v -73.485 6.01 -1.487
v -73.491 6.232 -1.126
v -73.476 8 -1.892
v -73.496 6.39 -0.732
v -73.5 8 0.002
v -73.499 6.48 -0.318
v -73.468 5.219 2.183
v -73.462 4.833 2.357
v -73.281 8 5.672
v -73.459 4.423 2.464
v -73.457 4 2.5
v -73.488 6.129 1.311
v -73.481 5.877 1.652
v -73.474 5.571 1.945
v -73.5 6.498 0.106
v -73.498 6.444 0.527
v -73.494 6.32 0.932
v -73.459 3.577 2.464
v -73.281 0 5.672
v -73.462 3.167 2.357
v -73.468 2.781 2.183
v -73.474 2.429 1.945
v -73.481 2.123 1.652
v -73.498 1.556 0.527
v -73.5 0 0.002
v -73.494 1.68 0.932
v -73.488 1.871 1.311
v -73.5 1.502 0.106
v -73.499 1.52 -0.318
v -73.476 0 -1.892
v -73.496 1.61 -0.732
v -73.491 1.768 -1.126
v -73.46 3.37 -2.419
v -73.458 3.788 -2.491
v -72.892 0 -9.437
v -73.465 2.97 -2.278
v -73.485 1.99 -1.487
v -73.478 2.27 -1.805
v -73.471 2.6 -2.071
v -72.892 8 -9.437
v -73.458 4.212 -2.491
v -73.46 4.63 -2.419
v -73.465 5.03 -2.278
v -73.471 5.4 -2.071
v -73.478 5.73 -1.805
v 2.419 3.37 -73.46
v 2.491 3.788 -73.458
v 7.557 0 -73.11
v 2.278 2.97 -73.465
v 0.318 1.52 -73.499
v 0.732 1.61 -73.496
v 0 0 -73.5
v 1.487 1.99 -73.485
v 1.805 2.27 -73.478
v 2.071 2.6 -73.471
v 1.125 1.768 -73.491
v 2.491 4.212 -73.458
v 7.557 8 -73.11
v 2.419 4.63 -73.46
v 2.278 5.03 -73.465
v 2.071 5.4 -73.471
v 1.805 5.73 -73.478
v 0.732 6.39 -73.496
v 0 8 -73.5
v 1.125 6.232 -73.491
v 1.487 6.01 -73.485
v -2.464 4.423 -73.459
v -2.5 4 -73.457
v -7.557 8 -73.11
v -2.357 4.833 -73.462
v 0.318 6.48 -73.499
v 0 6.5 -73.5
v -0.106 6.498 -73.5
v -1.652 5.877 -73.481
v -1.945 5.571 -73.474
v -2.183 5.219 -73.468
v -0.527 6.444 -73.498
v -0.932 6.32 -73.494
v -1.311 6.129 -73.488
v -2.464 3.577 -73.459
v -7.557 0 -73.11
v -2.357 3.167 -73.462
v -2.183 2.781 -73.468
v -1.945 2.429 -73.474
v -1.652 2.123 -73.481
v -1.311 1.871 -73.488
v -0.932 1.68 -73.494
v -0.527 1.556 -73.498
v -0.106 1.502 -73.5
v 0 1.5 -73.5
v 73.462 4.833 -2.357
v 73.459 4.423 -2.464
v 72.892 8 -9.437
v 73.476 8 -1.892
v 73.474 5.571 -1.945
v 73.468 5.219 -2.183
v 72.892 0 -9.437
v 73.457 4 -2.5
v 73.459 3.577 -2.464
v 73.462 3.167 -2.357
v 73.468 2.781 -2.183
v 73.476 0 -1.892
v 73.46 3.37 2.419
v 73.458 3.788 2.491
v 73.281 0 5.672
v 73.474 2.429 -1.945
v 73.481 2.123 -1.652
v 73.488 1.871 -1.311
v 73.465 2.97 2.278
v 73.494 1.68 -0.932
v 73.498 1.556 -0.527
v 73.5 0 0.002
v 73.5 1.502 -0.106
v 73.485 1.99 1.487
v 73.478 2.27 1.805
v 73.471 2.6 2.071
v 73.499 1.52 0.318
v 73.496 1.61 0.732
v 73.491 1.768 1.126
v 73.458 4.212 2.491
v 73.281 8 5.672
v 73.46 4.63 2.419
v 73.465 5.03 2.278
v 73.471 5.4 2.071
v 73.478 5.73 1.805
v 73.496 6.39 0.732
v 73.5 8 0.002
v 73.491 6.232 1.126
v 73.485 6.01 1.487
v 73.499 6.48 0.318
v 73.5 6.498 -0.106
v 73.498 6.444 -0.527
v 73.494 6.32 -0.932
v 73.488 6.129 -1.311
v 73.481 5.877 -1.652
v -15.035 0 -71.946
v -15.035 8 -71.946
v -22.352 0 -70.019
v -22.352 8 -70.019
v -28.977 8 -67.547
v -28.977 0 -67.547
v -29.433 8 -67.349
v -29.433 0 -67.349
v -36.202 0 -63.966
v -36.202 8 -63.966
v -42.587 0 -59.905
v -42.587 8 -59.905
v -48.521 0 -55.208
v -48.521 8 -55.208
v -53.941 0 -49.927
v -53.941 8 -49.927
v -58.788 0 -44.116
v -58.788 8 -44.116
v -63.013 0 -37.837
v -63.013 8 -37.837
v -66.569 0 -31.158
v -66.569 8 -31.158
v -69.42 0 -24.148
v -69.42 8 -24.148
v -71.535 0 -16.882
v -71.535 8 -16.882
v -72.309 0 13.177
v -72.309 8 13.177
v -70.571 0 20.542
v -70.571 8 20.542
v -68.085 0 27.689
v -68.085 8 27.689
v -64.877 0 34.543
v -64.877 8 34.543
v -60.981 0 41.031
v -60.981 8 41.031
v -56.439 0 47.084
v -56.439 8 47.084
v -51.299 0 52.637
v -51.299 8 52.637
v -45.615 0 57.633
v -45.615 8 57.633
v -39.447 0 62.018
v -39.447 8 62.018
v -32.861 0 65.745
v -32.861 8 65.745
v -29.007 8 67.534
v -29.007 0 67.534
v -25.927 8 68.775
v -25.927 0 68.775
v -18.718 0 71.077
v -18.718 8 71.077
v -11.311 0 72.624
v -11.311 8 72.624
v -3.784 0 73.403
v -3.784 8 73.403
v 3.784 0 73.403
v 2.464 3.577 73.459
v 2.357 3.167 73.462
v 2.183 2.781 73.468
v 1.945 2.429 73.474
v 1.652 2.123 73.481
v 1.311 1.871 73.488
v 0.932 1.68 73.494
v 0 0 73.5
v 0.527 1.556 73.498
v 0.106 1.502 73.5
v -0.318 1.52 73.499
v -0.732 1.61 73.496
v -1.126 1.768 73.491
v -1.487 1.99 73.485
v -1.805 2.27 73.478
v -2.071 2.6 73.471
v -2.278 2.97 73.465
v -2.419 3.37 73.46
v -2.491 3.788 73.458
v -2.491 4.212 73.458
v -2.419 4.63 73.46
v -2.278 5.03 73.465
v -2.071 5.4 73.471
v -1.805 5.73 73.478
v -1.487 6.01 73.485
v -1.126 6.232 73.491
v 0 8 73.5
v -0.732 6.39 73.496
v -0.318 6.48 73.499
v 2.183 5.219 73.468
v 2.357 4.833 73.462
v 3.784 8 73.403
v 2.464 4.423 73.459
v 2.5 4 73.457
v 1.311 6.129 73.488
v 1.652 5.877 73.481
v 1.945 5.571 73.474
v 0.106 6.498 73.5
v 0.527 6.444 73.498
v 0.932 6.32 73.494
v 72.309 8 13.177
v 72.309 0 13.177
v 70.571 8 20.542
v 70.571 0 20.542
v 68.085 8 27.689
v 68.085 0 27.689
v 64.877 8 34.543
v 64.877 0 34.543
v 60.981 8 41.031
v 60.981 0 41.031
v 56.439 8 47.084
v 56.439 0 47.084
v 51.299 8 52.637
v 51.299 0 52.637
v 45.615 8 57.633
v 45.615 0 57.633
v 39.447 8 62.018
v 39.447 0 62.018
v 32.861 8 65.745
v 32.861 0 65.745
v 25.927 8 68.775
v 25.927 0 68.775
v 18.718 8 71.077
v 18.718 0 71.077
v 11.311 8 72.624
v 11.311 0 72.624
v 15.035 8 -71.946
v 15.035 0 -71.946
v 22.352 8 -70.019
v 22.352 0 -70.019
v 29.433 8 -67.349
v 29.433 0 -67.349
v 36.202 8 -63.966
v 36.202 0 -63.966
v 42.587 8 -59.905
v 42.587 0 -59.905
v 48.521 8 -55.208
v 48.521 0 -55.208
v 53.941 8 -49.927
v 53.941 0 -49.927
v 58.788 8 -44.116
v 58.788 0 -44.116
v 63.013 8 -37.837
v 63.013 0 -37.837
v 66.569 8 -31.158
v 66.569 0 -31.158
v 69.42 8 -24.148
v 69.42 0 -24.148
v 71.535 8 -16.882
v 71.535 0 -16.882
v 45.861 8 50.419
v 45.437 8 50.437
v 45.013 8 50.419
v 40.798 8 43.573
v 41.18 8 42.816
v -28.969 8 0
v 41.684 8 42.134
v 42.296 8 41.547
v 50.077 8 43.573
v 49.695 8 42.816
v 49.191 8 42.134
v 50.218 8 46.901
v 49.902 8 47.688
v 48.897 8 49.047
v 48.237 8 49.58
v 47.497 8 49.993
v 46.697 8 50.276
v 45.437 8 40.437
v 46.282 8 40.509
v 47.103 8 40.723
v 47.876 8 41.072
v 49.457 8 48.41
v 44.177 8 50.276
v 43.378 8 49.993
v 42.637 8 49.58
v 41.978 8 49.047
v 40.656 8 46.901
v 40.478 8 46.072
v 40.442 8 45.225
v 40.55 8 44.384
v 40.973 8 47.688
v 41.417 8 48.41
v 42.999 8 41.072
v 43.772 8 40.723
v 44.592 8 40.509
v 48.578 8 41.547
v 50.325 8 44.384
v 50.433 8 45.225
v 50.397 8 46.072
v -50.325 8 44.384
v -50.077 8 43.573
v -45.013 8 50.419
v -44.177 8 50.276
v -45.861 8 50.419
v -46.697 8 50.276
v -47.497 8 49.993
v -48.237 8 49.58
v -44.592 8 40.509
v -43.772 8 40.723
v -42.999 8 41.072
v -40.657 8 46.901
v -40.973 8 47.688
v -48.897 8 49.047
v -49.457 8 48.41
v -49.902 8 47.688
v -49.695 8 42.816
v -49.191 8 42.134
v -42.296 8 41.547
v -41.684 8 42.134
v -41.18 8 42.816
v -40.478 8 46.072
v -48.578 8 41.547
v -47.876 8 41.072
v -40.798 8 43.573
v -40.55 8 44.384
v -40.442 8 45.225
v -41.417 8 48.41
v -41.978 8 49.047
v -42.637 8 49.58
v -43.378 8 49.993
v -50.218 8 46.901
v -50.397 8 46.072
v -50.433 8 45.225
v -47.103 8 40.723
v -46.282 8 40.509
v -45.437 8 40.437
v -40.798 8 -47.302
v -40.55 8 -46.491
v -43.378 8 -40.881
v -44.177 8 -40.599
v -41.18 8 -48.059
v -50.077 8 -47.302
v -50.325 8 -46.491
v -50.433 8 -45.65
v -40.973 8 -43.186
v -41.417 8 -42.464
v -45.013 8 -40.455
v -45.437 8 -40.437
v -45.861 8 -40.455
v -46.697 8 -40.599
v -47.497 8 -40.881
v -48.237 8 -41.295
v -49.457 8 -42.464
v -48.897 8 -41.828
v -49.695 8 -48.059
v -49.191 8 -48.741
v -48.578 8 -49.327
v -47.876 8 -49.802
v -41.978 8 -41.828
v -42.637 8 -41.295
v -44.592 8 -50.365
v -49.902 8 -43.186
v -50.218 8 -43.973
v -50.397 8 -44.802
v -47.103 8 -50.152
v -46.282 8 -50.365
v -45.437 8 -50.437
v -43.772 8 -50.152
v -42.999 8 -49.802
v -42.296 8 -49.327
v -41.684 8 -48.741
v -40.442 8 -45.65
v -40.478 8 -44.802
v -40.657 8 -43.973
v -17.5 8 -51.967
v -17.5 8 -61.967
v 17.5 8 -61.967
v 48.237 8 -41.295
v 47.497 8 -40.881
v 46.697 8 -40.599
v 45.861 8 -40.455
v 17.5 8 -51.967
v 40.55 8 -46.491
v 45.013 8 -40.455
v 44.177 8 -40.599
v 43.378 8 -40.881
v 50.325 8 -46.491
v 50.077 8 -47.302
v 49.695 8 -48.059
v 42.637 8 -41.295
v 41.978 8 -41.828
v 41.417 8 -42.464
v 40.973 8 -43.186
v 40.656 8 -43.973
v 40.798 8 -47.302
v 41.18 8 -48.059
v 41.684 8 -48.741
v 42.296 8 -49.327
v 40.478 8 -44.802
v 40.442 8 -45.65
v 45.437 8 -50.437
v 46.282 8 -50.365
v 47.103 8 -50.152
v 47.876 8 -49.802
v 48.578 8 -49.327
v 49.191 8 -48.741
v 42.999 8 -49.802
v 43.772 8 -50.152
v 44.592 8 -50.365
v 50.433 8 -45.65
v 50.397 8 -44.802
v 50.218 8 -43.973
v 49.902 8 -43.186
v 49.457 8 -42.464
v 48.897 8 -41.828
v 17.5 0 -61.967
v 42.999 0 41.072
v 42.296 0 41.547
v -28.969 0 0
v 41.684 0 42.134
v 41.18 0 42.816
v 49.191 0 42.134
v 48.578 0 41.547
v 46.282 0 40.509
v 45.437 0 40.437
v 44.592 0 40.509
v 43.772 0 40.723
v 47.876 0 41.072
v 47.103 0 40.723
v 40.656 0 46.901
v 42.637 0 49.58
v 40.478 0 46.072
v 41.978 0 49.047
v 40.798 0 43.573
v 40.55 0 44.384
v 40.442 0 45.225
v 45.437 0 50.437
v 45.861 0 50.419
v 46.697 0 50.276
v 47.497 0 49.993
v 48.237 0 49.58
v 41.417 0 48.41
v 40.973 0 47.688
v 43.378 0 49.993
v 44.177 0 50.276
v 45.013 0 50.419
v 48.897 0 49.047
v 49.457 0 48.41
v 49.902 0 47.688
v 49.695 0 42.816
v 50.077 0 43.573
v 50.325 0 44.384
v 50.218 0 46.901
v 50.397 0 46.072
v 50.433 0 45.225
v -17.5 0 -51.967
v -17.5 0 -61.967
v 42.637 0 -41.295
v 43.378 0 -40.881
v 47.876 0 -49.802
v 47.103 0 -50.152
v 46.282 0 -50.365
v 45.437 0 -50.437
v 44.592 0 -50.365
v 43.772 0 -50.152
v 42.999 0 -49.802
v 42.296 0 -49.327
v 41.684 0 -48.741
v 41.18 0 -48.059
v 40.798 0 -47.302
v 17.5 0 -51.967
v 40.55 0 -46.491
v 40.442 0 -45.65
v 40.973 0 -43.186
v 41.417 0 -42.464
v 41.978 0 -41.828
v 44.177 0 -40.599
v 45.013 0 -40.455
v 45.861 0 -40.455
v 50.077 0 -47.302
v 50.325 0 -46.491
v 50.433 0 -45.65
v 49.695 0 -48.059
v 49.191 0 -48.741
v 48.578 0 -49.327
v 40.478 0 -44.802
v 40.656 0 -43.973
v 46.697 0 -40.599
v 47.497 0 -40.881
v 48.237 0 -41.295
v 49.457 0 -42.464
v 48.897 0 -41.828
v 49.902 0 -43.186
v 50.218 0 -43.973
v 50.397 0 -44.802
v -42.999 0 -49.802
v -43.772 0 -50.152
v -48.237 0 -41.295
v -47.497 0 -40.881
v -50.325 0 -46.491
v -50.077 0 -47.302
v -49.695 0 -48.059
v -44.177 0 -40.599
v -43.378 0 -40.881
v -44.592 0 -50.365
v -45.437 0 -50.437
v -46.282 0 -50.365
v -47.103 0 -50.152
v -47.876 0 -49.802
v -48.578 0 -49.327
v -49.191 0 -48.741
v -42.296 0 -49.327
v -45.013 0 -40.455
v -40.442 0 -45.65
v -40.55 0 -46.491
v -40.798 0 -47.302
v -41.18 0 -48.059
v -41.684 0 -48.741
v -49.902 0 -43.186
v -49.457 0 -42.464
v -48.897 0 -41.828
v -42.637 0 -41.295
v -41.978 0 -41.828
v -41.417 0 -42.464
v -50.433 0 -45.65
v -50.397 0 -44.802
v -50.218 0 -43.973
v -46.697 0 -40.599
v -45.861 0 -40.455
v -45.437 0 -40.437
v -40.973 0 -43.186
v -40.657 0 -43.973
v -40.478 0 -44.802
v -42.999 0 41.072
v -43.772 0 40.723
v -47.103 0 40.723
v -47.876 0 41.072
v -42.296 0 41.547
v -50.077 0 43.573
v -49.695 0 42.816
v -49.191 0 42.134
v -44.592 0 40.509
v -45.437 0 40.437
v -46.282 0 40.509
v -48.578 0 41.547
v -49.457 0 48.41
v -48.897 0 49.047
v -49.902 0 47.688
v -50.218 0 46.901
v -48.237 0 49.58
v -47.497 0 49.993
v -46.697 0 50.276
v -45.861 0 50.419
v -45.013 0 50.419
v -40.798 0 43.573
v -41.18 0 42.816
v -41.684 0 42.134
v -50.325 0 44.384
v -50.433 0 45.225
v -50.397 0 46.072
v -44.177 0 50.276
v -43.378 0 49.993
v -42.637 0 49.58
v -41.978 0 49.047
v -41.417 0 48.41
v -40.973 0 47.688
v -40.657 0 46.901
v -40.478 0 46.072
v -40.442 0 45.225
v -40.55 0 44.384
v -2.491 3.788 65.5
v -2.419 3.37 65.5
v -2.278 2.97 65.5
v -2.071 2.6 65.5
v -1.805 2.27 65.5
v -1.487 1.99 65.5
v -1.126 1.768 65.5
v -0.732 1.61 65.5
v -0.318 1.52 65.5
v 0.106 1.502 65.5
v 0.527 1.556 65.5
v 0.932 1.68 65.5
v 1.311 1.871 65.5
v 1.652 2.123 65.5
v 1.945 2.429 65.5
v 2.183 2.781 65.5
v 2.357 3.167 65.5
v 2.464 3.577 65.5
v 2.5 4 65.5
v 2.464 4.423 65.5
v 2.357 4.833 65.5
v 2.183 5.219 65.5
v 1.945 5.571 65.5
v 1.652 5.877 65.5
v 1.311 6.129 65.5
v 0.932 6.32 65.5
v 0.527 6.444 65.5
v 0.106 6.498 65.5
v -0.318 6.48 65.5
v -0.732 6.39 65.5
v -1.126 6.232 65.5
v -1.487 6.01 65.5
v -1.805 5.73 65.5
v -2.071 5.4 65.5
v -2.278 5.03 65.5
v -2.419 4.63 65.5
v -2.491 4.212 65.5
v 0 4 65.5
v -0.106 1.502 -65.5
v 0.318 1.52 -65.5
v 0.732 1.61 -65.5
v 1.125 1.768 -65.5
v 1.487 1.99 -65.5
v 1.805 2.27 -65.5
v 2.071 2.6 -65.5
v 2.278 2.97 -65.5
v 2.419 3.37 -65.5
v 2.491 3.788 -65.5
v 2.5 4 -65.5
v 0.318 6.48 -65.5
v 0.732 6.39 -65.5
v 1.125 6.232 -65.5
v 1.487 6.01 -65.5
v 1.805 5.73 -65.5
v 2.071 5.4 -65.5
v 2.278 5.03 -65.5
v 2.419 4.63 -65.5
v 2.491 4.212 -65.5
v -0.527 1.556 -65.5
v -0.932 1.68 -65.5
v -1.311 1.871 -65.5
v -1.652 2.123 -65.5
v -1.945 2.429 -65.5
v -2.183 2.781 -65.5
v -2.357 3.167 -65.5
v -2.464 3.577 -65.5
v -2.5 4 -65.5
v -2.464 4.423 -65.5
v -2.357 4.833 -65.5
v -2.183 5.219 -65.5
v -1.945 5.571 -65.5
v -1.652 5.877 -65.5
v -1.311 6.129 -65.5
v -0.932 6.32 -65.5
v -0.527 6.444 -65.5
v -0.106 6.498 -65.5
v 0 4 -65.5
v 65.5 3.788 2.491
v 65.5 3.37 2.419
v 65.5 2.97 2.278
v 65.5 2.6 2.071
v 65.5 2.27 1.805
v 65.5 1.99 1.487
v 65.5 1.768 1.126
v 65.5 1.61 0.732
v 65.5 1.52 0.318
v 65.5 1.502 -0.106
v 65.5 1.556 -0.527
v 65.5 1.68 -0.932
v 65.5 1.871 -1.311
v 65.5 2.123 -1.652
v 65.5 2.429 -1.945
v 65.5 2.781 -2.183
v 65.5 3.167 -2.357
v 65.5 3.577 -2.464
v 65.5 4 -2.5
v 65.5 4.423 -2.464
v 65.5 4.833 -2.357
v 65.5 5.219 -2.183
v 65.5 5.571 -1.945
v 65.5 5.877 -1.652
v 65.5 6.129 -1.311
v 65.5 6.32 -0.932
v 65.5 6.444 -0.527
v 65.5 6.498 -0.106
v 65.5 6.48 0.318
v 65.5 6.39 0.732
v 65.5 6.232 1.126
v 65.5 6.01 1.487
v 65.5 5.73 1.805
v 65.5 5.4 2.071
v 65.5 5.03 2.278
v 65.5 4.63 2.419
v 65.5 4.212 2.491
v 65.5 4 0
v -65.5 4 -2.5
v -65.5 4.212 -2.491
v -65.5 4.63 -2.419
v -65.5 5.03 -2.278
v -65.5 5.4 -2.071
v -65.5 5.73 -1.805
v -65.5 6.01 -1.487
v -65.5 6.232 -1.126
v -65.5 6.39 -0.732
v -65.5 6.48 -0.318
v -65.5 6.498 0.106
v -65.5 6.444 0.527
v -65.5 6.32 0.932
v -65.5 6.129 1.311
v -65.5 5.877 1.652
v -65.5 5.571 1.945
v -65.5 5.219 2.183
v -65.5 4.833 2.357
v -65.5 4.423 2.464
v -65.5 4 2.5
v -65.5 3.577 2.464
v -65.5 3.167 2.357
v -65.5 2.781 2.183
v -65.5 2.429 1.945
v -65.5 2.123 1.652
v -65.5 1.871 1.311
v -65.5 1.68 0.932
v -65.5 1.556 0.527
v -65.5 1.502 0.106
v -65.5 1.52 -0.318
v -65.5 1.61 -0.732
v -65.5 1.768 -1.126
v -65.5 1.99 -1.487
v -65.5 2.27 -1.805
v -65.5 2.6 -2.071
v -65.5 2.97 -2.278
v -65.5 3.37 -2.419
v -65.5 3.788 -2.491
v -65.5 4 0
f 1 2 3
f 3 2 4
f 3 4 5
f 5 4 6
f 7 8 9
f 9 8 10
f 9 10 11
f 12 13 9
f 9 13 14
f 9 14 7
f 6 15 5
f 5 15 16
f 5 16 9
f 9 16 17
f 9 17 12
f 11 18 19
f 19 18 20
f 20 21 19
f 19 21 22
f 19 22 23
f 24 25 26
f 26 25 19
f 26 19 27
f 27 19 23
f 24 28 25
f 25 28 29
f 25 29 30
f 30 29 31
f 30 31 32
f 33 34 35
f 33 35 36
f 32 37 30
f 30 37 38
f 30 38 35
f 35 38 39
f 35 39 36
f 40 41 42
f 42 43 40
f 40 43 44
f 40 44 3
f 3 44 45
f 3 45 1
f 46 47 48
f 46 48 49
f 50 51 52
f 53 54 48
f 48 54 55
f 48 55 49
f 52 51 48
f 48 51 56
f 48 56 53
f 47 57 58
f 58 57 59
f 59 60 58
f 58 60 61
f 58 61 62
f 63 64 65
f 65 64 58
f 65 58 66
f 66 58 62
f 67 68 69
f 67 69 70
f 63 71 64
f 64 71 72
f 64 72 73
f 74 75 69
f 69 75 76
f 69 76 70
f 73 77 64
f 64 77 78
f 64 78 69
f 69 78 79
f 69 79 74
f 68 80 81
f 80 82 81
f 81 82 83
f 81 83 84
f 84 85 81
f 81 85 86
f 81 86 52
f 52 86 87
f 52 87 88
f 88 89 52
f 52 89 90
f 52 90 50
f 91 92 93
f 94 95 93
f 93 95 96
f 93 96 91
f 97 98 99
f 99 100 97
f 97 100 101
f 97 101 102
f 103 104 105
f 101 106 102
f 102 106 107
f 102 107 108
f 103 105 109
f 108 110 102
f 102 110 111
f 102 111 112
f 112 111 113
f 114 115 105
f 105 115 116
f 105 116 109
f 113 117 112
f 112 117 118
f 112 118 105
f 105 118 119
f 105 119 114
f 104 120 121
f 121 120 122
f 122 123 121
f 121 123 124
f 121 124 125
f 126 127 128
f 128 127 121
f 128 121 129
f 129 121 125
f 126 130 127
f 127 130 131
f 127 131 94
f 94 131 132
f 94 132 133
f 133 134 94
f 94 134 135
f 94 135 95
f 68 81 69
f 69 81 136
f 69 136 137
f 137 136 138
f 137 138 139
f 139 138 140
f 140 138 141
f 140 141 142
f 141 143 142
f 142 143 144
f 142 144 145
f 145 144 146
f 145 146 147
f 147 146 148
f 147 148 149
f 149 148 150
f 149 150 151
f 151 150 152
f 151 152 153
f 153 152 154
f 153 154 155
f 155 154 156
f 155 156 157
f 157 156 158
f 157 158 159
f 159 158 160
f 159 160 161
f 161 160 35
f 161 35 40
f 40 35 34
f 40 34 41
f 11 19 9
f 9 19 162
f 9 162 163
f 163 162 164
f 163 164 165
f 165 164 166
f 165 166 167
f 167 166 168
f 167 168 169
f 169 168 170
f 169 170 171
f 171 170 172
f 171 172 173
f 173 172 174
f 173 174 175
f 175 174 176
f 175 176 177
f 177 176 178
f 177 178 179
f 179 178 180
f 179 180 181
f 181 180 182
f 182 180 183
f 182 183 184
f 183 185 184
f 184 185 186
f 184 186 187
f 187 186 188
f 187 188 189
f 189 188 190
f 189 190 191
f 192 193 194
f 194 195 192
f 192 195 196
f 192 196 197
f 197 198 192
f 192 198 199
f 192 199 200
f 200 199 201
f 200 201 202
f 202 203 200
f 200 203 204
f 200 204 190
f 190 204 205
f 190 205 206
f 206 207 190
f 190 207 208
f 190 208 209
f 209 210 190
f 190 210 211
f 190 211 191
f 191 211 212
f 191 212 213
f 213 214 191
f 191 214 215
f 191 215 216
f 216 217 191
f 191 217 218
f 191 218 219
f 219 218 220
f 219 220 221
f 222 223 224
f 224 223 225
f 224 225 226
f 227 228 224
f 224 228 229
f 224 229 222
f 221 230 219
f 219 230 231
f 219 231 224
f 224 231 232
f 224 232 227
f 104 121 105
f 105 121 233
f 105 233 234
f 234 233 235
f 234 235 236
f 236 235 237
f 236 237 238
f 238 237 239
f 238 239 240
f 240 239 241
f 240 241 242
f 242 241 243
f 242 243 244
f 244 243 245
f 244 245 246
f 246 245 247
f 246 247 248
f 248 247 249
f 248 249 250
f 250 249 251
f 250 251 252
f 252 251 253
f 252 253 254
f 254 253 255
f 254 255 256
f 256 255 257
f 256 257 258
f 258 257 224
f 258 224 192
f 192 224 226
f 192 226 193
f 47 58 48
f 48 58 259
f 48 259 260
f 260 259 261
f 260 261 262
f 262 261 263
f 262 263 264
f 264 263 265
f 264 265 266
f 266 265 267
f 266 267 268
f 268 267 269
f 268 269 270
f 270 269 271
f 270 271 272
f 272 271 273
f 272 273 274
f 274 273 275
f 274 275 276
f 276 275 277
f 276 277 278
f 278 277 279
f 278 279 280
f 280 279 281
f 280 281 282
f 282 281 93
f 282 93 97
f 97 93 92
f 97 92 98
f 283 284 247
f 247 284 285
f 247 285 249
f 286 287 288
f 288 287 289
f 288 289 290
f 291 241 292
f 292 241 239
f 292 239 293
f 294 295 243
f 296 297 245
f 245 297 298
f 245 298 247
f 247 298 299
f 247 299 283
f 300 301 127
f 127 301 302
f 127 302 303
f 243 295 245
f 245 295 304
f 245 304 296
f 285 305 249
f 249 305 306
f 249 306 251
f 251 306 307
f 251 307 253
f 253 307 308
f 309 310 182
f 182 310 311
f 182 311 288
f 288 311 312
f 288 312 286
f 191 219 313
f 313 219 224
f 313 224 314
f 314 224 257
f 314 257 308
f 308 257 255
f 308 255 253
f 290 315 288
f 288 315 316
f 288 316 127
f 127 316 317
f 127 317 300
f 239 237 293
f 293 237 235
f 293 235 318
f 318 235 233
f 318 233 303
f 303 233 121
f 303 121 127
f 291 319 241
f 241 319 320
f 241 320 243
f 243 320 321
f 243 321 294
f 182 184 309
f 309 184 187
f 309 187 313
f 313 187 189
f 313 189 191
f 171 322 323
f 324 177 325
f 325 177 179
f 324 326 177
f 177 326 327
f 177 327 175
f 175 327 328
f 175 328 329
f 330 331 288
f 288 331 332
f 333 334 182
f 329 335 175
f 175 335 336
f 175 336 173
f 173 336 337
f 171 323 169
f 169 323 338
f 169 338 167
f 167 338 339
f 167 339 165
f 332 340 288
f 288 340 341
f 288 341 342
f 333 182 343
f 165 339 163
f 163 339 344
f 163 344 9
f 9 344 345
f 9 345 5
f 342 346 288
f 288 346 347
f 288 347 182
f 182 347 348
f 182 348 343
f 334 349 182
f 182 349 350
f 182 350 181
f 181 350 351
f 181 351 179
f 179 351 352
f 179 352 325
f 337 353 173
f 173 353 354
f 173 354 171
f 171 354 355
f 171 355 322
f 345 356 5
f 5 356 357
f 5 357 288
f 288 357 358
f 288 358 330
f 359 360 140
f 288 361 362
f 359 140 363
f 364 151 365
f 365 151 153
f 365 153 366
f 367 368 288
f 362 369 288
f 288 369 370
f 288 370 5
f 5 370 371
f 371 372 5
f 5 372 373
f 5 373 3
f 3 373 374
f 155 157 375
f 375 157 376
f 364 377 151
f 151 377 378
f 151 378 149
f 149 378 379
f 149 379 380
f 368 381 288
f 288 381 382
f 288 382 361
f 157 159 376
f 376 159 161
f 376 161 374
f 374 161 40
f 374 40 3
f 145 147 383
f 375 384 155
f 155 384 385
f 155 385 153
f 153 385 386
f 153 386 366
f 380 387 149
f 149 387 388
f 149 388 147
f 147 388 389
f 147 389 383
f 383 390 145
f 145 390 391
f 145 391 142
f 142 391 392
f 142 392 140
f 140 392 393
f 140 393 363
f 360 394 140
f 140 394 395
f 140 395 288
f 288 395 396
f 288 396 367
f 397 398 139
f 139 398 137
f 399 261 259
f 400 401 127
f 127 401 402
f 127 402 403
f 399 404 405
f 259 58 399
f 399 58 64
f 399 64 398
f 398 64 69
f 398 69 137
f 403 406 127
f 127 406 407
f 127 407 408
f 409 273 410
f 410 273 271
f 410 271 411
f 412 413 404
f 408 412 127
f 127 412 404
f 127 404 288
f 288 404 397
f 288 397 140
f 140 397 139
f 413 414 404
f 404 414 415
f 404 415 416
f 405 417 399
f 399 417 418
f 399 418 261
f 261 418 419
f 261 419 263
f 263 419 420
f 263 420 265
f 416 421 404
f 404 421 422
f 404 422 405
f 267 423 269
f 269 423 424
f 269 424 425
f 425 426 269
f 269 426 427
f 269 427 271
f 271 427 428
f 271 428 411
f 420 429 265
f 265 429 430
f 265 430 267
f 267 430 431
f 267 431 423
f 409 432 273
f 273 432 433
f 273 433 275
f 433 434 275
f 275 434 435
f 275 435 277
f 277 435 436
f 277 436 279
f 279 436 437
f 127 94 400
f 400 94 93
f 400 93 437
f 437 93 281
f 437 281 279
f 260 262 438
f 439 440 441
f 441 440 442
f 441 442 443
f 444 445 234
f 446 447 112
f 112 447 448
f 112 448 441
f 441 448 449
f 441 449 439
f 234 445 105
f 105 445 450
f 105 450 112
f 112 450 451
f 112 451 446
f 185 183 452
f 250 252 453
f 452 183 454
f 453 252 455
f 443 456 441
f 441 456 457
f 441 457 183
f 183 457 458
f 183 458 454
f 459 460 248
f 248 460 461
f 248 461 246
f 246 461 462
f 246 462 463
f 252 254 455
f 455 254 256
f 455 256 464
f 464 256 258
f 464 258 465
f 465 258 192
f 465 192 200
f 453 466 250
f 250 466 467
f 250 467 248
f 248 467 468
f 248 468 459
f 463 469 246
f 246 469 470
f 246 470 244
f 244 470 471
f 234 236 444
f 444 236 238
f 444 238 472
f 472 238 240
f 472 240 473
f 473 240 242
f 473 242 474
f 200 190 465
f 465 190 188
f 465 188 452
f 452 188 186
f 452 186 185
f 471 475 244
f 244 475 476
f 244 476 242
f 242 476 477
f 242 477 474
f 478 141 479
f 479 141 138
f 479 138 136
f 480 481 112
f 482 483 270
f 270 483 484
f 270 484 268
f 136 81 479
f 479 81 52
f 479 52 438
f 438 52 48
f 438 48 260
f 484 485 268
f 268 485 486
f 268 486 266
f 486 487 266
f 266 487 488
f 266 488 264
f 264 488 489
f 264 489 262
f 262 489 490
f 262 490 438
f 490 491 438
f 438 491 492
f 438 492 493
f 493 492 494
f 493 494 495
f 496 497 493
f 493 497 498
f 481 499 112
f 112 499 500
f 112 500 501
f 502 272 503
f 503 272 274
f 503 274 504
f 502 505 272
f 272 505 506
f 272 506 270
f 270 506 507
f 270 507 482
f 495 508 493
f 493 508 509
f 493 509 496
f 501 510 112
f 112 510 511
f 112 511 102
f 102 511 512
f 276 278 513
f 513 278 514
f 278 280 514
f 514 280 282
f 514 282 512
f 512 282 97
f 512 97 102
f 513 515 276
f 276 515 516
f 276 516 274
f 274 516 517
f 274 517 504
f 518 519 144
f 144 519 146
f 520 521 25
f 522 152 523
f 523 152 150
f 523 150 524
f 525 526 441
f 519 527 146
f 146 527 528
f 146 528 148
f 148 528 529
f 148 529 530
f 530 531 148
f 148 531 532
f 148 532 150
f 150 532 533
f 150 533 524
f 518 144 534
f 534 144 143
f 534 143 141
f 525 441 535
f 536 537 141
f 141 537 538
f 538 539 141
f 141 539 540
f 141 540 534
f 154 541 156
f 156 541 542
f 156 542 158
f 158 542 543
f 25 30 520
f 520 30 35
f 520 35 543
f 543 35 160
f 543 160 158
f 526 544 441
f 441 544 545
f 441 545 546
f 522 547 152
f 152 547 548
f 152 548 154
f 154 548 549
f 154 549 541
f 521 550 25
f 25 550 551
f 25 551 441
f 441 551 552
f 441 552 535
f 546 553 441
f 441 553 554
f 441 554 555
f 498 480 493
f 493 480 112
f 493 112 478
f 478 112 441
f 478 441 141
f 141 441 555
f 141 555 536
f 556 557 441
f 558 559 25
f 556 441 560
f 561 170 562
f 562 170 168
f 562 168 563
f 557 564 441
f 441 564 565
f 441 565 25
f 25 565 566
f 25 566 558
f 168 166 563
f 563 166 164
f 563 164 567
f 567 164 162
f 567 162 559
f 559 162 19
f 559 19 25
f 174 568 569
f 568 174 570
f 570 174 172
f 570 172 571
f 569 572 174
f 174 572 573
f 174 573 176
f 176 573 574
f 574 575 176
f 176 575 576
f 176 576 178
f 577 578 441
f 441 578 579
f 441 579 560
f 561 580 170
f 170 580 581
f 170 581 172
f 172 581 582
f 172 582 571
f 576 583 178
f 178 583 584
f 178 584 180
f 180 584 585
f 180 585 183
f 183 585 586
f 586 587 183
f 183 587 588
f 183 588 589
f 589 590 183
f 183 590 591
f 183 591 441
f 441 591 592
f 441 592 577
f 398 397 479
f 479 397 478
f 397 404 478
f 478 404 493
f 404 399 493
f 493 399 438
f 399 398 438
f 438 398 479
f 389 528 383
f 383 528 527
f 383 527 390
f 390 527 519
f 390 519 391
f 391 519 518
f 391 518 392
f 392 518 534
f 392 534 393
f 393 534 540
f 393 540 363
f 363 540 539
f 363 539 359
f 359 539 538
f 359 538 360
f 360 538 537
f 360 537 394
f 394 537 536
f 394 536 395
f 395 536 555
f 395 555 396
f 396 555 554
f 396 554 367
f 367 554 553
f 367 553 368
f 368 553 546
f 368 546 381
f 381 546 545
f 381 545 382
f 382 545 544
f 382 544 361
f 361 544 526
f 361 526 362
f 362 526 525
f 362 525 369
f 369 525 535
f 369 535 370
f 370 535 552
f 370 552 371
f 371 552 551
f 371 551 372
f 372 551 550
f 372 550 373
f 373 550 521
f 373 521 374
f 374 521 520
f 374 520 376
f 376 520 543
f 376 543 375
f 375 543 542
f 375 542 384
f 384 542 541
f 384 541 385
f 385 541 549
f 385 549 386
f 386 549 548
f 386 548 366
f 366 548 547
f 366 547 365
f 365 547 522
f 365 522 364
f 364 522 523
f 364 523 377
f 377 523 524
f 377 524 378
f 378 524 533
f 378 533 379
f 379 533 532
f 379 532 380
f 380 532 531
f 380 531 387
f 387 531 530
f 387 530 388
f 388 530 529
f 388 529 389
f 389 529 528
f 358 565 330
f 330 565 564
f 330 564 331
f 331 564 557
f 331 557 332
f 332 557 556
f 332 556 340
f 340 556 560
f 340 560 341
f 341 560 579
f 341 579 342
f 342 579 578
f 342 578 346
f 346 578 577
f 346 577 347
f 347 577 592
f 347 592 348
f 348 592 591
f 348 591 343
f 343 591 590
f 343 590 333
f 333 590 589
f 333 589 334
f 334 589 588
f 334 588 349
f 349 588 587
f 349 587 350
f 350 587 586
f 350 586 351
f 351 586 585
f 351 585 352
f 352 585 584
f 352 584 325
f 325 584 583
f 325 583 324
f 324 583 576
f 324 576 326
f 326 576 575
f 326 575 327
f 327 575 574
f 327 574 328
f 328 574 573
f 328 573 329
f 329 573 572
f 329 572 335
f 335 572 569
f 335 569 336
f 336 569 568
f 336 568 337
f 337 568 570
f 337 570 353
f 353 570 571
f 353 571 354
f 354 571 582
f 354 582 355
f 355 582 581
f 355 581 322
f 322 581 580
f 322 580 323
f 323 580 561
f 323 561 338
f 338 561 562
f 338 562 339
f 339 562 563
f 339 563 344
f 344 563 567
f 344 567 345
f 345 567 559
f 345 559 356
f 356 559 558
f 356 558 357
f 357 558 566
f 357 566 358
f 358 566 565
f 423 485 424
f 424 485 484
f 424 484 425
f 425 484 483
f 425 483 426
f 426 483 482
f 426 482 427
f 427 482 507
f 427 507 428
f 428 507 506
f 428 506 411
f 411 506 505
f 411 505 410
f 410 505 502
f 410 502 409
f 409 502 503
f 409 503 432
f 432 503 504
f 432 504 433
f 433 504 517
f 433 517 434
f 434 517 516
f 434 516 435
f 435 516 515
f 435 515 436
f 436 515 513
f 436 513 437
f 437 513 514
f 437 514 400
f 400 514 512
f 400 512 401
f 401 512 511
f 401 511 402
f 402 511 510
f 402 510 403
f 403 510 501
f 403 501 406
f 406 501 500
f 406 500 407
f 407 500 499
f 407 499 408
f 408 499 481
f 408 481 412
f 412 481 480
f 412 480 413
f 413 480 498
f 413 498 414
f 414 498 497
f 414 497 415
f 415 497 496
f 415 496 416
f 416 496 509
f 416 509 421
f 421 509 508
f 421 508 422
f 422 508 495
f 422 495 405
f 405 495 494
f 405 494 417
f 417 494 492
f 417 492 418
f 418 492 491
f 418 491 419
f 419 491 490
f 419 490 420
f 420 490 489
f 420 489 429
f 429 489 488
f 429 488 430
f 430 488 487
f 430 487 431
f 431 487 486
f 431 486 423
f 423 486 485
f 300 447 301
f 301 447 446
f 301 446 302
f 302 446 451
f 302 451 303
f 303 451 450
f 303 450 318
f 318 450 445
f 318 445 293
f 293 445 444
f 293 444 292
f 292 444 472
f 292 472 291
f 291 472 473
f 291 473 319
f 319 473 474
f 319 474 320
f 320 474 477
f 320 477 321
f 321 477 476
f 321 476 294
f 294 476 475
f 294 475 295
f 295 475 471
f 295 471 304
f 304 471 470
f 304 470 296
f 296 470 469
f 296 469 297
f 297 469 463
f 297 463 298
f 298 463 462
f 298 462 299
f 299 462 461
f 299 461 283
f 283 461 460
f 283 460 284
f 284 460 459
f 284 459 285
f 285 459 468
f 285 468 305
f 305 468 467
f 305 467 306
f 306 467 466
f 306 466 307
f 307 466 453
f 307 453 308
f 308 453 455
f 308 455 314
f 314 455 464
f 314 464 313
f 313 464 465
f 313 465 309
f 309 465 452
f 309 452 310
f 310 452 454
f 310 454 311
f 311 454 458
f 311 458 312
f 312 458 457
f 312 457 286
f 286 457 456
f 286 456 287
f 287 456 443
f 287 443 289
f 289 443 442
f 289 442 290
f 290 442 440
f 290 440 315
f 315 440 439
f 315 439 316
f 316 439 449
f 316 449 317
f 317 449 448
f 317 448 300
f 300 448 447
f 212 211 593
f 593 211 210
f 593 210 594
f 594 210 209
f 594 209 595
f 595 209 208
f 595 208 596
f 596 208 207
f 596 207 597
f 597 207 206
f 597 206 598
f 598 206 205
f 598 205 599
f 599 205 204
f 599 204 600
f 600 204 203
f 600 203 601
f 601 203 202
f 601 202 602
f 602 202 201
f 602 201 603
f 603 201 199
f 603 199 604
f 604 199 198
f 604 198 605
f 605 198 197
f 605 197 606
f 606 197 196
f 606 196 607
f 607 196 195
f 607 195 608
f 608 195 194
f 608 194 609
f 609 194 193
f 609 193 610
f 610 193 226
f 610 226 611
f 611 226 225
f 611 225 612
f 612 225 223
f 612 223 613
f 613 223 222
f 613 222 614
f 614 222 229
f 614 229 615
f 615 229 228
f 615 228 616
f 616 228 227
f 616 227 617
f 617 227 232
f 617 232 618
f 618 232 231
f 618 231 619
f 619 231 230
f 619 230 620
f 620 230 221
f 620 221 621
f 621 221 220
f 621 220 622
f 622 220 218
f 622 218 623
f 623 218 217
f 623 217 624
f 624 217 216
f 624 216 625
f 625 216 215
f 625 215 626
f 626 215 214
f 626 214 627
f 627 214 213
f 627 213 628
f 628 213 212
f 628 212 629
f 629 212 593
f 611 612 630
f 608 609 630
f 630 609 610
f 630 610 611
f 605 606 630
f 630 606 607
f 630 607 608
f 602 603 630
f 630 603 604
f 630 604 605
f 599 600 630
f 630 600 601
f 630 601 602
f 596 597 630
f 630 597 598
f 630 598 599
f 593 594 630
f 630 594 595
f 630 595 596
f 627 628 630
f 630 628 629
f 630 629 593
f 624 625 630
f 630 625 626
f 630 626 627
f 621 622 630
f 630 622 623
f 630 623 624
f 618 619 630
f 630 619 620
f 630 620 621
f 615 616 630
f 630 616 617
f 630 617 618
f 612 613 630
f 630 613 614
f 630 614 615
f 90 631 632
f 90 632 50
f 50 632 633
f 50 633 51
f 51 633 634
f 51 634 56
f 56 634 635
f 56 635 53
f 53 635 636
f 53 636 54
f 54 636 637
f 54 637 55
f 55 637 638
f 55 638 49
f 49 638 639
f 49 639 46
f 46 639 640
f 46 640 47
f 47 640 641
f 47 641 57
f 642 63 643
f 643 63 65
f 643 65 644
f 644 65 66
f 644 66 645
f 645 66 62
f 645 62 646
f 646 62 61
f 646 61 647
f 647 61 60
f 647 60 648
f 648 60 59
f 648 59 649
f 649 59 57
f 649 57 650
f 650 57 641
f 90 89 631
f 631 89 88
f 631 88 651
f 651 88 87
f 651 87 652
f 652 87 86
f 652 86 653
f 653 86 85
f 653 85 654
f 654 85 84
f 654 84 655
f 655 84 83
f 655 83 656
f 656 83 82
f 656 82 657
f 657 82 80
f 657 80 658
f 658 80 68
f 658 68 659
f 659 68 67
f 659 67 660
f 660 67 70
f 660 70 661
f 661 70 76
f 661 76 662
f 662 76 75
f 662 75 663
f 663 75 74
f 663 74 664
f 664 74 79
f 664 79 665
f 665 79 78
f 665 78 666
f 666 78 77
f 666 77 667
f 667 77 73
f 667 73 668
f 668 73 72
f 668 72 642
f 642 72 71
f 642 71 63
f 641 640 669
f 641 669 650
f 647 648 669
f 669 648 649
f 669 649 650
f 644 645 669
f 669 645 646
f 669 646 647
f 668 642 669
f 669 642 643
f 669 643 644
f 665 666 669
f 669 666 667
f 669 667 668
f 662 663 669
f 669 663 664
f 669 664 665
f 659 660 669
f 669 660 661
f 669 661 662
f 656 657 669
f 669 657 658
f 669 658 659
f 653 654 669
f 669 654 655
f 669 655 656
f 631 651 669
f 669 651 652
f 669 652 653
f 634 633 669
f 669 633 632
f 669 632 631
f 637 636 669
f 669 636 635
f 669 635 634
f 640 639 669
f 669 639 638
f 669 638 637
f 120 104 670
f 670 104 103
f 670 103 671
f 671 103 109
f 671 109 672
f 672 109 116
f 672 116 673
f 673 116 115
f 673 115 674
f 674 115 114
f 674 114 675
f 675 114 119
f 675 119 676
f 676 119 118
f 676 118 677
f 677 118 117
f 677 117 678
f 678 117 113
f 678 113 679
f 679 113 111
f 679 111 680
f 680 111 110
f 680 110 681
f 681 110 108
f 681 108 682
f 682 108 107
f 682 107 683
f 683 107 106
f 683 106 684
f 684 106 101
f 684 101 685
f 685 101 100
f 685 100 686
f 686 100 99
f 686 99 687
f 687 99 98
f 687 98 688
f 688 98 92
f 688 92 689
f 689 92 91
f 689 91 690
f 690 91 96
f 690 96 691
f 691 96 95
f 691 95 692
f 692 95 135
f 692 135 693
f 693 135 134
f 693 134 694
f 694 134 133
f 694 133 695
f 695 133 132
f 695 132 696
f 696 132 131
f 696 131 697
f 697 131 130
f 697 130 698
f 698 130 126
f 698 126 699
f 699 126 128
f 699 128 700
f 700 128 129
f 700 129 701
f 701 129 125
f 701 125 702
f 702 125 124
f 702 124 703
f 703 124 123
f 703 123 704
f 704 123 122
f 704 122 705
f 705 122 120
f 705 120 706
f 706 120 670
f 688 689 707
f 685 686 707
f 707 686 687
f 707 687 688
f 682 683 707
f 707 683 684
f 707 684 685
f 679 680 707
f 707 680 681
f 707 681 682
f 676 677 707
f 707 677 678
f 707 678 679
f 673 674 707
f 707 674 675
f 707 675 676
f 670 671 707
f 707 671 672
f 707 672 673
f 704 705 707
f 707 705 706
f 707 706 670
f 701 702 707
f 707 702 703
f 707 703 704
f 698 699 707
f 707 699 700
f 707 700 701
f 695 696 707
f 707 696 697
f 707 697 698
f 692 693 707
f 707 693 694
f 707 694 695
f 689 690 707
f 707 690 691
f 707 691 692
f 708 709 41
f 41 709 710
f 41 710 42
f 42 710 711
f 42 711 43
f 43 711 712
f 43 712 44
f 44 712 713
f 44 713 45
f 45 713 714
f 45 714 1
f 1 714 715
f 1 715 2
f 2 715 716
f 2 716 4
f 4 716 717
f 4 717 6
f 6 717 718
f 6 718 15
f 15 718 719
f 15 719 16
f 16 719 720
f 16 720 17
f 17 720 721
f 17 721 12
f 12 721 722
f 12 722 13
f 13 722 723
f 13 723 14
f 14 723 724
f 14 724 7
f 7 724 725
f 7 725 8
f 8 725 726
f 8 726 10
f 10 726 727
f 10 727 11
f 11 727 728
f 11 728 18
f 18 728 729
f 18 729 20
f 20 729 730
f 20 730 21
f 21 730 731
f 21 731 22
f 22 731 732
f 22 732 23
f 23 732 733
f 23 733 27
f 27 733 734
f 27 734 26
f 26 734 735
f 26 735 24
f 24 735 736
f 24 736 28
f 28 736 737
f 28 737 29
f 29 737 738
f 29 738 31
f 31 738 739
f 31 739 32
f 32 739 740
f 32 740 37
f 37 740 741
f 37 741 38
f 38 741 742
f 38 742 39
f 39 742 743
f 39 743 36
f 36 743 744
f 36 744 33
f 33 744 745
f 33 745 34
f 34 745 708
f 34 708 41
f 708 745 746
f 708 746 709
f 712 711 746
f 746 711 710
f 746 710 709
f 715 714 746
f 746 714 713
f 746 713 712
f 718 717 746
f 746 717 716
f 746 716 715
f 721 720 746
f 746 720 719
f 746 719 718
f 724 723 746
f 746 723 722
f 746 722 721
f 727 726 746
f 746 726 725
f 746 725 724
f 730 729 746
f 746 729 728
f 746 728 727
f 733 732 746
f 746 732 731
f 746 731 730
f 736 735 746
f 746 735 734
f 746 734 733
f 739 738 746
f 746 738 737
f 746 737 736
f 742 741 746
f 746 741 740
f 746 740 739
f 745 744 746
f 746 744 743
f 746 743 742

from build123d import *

# Parameters (mm, degrees)
SKETCH_1_R          = 73.5
SKETCH_1_R_2        = 5
SKETCH_1_W          = 35
SKETCH_1_H          = 10
EXTRUDE_1_DEPTH     = 8
CUT_EXTRUDE_1_DEPTH = 8
CUT_EXTRUDE_3_DEPTH = 8


with BuildPart() as part:
    # 草图1 → 凸台-拉伸1 (new body)
    with BuildSketch(Plane(origin=(0, 0, 0), x_dir=(1, 0, 0), z_dir=(0, 1, 0))):
        with Locations(Location((0, 0, 0), (0, 0, 270))):
            Circle(SKETCH_1_R)
        with Locations(Location((-45.437321384, 45.437321385, 0), (0, 0, 270))):
            Circle(SKETCH_1_R_2, mode=Mode.SUBTRACT)
        with Locations(Location((-45.437321384, -45.437321385, 0), (0, 0, 90))):
            Circle(SKETCH_1_R_2, mode=Mode.SUBTRACT)
        with Locations(Location((45.437321384, 45.437321385, 0), (0, 0, 90))):
            Circle(SKETCH_1_R_2, mode=Mode.SUBTRACT)
        with Locations(Location((45.437321384, -45.437321385, 0), (0, 0, 270))):
            Circle(SKETCH_1_R_2, mode=Mode.SUBTRACT)
        with Locations((0, 56.967179039)):
            Rectangle(SKETCH_1_W, SKETCH_1_H, mode=Mode.SUBTRACT)
    extrude(amount=EXTRUDE_1_DEPTH)

    # 草图2 → 切除-拉伸1 (cut)
    with BuildSketch(Plane.XY.offset(73.5)):
        with BuildLine():
            ThreePointArc((0, 6.5), (-2.5, 4), (0, 1.5))
            Line((0, 1.5), (0, 6.5))
        make_face()
        with BuildLine():
            Line((0, 6.5), (0, 1.5))
            ThreePointArc((0, 1.5), (1.767766953, 2.232233047), (2.5, 4))
            ThreePointArc((2.5, 4), (1.767766953, 5.767766953), (0, 6.5))
        make_face()
    cut_extrude_1 = extrude(amount=-CUT_EXTRUDE_1_DEPTH, mode=Mode.SUBTRACT)

    # 镜向1: 切除-拉伸1 across plane
    add(cut_extrude_1.mirror(Plane.XY), mode=Mode.SUBTRACT)

    # 草图3 → 切除-拉伸3 (cut)
    with BuildSketch(Plane(origin=(73.5, 0, 0), x_dir=(0, 0, -1), z_dir=(1, 0, 0))):
        with BuildLine():
            ThreePointArc((0, 6.5), (-2.5, 4), (0, 1.5))
            Line((0, 1.5), (0, 6.5))
        make_face()
        with BuildLine():
            Line((0, 6.5), (0, 1.5))
            ThreePointArc((0, 1.5), (1.767766953, 2.232233047), (2.5, 4))
            ThreePointArc((2.5, 4), (1.767766953, 5.767766953), (0, 6.5))
        make_face()
    cut_extrude_3 = extrude(amount=-CUT_EXTRUDE_3_DEPTH, mode=Mode.SUBTRACT)

    # 镜向2: 切除-拉伸3 across plane
    add(cut_extrude_3.mirror(Plane(origin=(0, 0, 0), x_dir=(0, 0, 1), z_dir=(1, 0, 0))), mode=Mode.SUBTRACT)


solid = part.part
